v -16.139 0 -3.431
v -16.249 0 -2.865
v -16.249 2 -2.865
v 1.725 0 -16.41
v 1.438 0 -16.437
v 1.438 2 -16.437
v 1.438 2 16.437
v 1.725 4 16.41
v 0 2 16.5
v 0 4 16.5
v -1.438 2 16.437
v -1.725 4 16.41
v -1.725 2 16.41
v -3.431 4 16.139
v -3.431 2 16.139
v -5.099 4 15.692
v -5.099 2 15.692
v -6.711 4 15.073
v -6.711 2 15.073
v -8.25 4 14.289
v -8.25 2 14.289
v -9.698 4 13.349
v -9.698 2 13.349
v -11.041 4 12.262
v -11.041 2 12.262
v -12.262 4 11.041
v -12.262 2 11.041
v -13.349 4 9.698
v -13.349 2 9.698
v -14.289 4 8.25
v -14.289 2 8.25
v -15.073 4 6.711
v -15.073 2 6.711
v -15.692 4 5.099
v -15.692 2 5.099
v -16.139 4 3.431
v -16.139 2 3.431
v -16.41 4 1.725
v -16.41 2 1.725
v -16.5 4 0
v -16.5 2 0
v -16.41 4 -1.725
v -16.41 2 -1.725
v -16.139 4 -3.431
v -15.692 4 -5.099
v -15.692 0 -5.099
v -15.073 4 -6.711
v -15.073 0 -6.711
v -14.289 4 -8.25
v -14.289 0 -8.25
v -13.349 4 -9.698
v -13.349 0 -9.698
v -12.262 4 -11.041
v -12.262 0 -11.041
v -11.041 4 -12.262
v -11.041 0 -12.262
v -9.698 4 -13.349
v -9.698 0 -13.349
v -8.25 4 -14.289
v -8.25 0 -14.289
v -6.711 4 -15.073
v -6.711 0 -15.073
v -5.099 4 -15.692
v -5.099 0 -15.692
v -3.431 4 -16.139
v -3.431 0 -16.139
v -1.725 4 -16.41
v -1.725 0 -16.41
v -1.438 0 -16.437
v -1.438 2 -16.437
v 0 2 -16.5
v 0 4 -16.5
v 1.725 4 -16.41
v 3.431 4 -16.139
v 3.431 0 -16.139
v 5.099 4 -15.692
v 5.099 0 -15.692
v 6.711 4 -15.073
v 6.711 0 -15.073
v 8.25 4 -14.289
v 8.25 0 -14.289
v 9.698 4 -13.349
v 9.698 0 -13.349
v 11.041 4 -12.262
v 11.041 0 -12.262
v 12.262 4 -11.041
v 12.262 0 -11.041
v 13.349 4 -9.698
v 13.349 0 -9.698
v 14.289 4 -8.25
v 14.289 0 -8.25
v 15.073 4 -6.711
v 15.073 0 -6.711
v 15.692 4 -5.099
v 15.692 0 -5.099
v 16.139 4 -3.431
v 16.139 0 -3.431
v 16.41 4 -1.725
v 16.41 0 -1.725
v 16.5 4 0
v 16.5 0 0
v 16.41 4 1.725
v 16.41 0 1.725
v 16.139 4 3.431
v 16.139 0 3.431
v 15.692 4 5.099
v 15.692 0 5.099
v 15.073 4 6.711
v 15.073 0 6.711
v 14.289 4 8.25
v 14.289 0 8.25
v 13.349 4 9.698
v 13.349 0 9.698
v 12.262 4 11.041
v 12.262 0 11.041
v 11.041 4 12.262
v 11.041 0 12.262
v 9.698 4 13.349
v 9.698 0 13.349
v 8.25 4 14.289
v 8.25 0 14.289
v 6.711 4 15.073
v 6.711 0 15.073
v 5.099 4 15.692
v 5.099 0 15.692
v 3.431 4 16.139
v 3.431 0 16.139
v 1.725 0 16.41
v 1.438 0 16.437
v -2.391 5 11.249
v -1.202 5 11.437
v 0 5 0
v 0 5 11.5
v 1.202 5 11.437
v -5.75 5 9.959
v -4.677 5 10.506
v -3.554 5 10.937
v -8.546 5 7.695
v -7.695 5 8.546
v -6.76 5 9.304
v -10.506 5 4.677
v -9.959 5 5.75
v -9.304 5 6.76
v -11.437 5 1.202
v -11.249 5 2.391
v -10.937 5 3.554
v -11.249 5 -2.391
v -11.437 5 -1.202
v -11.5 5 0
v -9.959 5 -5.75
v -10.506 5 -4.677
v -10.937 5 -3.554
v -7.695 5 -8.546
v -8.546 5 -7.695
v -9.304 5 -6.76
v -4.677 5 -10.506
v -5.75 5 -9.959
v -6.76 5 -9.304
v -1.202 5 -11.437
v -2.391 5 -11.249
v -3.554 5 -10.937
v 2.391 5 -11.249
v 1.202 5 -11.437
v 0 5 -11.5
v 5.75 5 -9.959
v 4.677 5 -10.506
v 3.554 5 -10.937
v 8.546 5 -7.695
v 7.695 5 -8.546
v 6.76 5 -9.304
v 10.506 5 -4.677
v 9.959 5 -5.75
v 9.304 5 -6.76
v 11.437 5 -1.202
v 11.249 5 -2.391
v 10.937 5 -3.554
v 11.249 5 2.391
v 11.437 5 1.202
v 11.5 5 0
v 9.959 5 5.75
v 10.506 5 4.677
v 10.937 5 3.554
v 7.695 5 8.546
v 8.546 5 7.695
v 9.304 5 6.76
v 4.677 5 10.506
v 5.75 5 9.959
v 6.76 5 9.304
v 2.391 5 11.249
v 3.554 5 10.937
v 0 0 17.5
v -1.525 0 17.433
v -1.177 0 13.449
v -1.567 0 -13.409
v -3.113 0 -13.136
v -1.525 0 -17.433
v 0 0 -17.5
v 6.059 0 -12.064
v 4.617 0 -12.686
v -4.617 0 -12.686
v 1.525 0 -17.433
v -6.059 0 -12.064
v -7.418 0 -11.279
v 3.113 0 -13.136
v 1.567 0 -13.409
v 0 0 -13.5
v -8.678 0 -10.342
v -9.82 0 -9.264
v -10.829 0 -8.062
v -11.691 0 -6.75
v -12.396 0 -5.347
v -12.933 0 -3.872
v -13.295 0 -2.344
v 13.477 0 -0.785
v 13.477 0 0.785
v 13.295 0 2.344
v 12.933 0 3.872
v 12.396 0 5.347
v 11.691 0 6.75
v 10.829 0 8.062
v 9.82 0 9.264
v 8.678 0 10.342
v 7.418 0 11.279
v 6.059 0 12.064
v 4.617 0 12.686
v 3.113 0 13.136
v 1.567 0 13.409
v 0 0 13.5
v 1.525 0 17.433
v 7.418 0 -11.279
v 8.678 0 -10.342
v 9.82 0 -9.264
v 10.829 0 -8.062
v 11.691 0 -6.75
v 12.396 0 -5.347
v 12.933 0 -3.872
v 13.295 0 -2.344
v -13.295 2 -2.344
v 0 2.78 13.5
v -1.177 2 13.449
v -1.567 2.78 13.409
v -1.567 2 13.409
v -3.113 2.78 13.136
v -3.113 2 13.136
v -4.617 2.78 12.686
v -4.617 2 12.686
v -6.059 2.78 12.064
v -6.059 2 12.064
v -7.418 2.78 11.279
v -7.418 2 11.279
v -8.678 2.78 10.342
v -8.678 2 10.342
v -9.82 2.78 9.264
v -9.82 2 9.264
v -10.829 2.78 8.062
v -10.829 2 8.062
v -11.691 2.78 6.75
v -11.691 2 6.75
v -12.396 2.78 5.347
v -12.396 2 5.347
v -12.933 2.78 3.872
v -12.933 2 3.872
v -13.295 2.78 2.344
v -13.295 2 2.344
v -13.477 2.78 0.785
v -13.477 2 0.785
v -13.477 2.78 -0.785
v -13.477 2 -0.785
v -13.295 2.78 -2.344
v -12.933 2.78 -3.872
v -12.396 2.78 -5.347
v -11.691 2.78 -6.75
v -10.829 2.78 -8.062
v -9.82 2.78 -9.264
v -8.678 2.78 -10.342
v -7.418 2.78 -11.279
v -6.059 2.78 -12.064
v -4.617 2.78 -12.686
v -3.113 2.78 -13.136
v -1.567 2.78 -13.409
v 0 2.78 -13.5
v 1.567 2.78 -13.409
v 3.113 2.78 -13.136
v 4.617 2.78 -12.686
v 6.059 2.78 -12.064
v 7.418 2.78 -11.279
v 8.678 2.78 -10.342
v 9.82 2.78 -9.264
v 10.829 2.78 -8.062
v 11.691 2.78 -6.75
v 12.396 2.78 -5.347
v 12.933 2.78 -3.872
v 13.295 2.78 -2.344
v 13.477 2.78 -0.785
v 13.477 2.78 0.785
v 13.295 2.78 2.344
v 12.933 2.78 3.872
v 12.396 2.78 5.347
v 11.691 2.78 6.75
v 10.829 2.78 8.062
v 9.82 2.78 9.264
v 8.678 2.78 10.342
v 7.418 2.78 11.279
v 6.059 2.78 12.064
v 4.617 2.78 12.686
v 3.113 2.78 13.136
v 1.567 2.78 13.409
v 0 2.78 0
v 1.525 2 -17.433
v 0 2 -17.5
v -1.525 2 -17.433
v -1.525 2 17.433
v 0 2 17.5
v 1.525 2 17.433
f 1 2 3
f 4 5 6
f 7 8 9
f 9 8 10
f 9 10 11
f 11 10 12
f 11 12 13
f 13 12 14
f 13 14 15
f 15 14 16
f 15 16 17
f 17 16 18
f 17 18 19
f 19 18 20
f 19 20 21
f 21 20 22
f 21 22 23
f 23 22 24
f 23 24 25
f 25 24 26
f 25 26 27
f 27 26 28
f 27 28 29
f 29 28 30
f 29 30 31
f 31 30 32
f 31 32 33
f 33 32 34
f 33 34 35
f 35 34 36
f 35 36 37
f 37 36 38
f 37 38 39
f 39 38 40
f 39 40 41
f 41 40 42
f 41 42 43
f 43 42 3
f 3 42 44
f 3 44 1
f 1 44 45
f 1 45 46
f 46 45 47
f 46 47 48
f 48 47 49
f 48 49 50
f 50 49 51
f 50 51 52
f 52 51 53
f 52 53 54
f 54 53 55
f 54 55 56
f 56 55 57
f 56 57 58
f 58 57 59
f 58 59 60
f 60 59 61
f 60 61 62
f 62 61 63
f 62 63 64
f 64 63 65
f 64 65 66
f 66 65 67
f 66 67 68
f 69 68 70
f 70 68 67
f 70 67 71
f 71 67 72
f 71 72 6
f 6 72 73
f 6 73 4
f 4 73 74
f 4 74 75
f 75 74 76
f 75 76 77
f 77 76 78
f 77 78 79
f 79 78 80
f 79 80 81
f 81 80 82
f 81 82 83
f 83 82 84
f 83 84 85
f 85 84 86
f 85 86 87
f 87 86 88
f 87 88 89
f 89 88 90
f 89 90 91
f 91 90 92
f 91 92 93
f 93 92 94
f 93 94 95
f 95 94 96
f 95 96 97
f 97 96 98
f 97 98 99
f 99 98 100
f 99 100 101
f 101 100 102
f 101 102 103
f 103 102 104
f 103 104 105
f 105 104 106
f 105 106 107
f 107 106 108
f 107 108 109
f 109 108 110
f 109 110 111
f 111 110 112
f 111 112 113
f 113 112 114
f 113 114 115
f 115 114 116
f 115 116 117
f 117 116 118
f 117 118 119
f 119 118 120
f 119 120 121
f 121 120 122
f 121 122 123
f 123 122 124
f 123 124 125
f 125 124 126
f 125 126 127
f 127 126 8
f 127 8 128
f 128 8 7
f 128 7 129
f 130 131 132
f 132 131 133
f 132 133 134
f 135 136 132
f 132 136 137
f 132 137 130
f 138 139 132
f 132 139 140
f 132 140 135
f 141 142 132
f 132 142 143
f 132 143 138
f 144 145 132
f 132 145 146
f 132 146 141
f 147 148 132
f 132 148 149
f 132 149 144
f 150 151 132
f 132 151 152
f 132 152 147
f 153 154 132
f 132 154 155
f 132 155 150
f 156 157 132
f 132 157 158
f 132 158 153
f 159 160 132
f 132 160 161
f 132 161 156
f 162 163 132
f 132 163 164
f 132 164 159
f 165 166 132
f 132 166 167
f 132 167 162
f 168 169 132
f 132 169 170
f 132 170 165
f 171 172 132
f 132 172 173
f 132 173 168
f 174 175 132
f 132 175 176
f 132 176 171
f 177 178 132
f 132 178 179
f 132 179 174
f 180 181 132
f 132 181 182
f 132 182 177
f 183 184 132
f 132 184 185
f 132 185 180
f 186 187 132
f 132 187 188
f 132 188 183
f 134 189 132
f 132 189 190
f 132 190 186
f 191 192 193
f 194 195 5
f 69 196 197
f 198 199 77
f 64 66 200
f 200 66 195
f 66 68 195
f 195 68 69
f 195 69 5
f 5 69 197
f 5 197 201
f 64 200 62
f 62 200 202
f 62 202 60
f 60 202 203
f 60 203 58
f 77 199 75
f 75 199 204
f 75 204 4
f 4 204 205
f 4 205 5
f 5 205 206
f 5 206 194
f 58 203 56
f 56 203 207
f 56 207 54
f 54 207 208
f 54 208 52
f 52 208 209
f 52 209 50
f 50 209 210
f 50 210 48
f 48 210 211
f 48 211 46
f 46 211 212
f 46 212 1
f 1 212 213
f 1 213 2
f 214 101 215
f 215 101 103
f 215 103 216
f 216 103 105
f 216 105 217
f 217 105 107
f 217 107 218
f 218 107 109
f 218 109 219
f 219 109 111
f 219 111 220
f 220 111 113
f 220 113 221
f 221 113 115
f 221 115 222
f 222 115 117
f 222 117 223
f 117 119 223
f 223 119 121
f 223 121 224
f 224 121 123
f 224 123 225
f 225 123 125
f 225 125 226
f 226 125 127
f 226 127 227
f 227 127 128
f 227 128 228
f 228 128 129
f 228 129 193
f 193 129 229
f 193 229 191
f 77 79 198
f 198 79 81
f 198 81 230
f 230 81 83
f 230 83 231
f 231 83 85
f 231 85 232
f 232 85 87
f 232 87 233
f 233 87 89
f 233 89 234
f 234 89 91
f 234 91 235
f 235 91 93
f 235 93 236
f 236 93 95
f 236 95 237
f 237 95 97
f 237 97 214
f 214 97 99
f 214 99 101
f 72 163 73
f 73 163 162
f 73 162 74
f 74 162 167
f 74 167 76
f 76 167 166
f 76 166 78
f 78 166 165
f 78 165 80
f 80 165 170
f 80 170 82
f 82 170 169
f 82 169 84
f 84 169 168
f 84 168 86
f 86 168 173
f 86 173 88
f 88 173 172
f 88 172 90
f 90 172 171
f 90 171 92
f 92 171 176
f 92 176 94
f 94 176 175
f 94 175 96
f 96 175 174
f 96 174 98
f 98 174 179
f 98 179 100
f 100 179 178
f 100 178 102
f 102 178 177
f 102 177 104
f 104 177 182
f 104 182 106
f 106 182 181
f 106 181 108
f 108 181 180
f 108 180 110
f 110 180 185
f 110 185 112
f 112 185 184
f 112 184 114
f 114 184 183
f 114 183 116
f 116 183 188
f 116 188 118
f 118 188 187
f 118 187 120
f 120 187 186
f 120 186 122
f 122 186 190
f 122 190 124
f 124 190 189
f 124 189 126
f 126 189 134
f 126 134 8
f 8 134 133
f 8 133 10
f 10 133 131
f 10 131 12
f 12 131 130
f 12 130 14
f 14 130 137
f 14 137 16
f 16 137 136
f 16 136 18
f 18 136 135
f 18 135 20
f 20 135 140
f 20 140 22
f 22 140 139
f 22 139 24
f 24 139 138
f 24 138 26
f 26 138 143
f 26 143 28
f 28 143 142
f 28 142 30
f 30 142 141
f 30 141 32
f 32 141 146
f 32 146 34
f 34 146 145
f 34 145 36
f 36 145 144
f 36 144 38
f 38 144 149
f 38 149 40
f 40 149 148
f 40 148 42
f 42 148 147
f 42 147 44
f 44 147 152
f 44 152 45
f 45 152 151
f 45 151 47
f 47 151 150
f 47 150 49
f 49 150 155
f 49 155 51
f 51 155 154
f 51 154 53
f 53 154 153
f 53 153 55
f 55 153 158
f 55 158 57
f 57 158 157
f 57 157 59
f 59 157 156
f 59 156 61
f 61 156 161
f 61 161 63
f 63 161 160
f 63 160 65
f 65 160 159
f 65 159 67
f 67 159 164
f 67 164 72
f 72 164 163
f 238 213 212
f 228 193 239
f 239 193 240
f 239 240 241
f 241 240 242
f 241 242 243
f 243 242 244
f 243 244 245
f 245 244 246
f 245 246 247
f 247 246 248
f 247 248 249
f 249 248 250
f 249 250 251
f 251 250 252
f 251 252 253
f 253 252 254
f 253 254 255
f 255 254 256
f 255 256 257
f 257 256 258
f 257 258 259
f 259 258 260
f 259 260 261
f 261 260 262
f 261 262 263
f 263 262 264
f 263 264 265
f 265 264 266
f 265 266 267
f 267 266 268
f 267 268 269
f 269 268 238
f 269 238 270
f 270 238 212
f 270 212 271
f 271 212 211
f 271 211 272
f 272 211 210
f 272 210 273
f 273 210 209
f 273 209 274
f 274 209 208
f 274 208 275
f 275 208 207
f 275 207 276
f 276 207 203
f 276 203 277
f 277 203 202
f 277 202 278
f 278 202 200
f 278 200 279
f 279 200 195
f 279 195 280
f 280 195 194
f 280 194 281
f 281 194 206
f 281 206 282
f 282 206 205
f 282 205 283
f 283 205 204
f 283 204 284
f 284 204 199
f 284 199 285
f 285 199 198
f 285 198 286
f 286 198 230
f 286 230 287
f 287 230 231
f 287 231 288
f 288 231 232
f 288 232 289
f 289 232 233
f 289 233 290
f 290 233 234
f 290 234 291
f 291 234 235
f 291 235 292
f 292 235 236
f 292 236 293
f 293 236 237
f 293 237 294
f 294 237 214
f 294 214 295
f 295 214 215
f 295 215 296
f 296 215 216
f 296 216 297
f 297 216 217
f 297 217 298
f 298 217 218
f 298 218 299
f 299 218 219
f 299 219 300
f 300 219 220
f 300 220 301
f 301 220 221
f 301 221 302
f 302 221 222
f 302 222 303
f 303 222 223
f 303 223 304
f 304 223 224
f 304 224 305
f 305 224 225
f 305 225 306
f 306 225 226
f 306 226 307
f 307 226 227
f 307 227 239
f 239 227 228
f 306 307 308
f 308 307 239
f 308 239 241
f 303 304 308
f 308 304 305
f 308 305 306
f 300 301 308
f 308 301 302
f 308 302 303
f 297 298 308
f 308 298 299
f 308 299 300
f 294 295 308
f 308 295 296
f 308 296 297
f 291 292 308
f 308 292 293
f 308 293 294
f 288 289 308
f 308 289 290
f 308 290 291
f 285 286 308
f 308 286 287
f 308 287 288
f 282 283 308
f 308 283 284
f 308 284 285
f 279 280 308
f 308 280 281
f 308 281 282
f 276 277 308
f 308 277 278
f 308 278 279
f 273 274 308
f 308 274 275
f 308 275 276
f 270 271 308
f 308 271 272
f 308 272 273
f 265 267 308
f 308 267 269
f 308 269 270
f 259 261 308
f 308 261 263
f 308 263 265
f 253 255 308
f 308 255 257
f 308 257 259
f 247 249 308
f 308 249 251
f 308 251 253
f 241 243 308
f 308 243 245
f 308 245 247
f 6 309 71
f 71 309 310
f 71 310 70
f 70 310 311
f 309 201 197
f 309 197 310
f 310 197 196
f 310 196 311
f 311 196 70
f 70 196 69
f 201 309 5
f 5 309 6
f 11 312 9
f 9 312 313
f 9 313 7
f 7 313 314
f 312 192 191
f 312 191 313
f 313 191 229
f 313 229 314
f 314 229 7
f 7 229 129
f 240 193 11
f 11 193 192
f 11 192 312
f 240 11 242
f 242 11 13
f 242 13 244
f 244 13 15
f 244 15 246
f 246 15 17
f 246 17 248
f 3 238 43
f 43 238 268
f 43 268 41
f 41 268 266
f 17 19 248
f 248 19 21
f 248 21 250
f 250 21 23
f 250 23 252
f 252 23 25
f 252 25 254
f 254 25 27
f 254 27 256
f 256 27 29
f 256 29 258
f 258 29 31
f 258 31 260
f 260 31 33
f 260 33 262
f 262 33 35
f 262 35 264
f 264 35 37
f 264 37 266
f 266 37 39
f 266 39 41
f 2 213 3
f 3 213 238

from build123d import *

# Parameters (mm, degrees)
SKETCH1_R                    = 16.5
BOSS_EXTRUDE1_DEPTH          = 5
CHAMFER2_SIZE                = 1
CHAMFER2_SIZE2               = 5
SKETCH3_R                    = 13.5
CUT_EXTRUDE1_DEPTH           = 2.78
SKETCH5_W                    = 1
SKETCH5_H                    = 2
REVOLVE4_ANGLE               = 5
REVOLVE4_OTHER_WAY_ANGLE     = 5
REVOLVE6_DEPTH               = 2
SKETCH9_W                    = 16.5
SKETCH9_H                    = 2
CUT_REVOLVE1_ANGLE           = 85
CUT_REVOLVE1_OTHER_WAY_ANGLE = 10


# Read off the part's stored shape, not the designer's step: Revolve6
with BuildPart() as part:
    # Sketch1 → Boss-Extrude1 (new body)
    with BuildSketch(Plane(origin=(0, 0, 0), x_dir=(1, 0, 0), z_dir=(0, 1, 0))):
        with Locations(Location((0, 0, 0), (0, 0, 270))):
            Circle(SKETCH1_R)
    extrude(amount=BOSS_EXTRUDE1_DEPTH)

    # Chamfer2
    chamfer2_edges = [part.edges().sort_by_distance(p)[0] for p in [
        (0, 5, -16.5),
    ]]
    chamfer2_side = [part.faces().sort_by_distance(p)[0] for p in [
        (0, 2.5, -16.5),
    ]]
    chamfer(chamfer2_edges, length=CHAMFER2_SIZE, length2=CHAMFER2_SIZE2, reference=chamfer2_side[0])

    # Sketch3 → Cut-Extrude1 (cut)
    with BuildSketch(Plane(origin=(0, 0, 0), x_dir=(1, 0, 0), z_dir=(0, 1, 0))):
        with Locations(Location((0, 0, 0), (0, 0, 270))):
            Circle(SKETCH3_R)
    extrude(amount=CUT_EXTRUDE1_DEPTH, mode=Mode.SUBTRACT)

    # Sketch5 → Revolve4 (revolve)
    with BuildSketch(Plane(origin=(0, 0, 0), x_dir=(0, 0, -1), z_dir=(1, 0, 0))):
        with Locations((17, 1)):
            Rectangle(SKETCH5_W, SKETCH5_H)
    revolve(axis=Axis((0, 0, 0), (0, 1, 0)), revolution_arc=REVOLVE4_ANGLE)

    # Sketch5 → Revolve4 other way (revolve)
    with BuildSketch(Plane(origin=(0, 0, 0), x_dir=(0, 0, -1), z_dir=(1, 0, 0))):
        with Locations((17, 1)):
            Rectangle(SKETCH5_W, SKETCH5_H)
    revolve(axis=Axis((0, 0, 0), (0, -1, 0)), revolution_arc=REVOLVE4_OTHER_WAY_ANGLE)

    # Revolve6 outline → Revolve6 (add)
    with BuildSketch(Plane(origin=(0, 0, 0), x_dir=(1, 0, 0), z_dir=(0, 1, 0))):
        with BuildLine():
            ThreePointArc((-1.525225498, -17.433407217), (0, -17.5), (1.525225498, -17.433407217))
            Line((1.525225498, -17.433407217), (1.438069755, -16.437212519))
            ThreePointArc((1.438069755, -16.437212519), (0, -16.5), (-1.438069755, -16.437212519))
            Line((-1.438069755, -16.437212519), (-1.525225498, -17.433407217))
        make_face()
    extrude(amount=REVOLVE6_DEPTH)

    # Sketch9 → Cut-Revolve1 (revolve, cut)
    with BuildSketch(Plane.XY):
        with Locations((-8.25, 1)):
            Rectangle(SKETCH9_W, SKETCH9_H)
    revolve(axis=Axis((0, 0, 0), (0, 1, 0)), revolution_arc=CUT_REVOLVE1_ANGLE, mode=Mode.SUBTRACT)

    # Sketch9 → Cut-Revolve1 other way (revolve, cut)
    with BuildSketch(Plane.XY):
        with Locations((-8.25, 1)):
            Rectangle(SKETCH9_W, SKETCH9_H)
    revolve(axis=Axis((0, 0, 0), (0, -1, 0)), revolution_arc=CUT_REVOLVE1_OTHER_WAY_ANGLE, mode=Mode.SUBTRACT)


solid = part.part
